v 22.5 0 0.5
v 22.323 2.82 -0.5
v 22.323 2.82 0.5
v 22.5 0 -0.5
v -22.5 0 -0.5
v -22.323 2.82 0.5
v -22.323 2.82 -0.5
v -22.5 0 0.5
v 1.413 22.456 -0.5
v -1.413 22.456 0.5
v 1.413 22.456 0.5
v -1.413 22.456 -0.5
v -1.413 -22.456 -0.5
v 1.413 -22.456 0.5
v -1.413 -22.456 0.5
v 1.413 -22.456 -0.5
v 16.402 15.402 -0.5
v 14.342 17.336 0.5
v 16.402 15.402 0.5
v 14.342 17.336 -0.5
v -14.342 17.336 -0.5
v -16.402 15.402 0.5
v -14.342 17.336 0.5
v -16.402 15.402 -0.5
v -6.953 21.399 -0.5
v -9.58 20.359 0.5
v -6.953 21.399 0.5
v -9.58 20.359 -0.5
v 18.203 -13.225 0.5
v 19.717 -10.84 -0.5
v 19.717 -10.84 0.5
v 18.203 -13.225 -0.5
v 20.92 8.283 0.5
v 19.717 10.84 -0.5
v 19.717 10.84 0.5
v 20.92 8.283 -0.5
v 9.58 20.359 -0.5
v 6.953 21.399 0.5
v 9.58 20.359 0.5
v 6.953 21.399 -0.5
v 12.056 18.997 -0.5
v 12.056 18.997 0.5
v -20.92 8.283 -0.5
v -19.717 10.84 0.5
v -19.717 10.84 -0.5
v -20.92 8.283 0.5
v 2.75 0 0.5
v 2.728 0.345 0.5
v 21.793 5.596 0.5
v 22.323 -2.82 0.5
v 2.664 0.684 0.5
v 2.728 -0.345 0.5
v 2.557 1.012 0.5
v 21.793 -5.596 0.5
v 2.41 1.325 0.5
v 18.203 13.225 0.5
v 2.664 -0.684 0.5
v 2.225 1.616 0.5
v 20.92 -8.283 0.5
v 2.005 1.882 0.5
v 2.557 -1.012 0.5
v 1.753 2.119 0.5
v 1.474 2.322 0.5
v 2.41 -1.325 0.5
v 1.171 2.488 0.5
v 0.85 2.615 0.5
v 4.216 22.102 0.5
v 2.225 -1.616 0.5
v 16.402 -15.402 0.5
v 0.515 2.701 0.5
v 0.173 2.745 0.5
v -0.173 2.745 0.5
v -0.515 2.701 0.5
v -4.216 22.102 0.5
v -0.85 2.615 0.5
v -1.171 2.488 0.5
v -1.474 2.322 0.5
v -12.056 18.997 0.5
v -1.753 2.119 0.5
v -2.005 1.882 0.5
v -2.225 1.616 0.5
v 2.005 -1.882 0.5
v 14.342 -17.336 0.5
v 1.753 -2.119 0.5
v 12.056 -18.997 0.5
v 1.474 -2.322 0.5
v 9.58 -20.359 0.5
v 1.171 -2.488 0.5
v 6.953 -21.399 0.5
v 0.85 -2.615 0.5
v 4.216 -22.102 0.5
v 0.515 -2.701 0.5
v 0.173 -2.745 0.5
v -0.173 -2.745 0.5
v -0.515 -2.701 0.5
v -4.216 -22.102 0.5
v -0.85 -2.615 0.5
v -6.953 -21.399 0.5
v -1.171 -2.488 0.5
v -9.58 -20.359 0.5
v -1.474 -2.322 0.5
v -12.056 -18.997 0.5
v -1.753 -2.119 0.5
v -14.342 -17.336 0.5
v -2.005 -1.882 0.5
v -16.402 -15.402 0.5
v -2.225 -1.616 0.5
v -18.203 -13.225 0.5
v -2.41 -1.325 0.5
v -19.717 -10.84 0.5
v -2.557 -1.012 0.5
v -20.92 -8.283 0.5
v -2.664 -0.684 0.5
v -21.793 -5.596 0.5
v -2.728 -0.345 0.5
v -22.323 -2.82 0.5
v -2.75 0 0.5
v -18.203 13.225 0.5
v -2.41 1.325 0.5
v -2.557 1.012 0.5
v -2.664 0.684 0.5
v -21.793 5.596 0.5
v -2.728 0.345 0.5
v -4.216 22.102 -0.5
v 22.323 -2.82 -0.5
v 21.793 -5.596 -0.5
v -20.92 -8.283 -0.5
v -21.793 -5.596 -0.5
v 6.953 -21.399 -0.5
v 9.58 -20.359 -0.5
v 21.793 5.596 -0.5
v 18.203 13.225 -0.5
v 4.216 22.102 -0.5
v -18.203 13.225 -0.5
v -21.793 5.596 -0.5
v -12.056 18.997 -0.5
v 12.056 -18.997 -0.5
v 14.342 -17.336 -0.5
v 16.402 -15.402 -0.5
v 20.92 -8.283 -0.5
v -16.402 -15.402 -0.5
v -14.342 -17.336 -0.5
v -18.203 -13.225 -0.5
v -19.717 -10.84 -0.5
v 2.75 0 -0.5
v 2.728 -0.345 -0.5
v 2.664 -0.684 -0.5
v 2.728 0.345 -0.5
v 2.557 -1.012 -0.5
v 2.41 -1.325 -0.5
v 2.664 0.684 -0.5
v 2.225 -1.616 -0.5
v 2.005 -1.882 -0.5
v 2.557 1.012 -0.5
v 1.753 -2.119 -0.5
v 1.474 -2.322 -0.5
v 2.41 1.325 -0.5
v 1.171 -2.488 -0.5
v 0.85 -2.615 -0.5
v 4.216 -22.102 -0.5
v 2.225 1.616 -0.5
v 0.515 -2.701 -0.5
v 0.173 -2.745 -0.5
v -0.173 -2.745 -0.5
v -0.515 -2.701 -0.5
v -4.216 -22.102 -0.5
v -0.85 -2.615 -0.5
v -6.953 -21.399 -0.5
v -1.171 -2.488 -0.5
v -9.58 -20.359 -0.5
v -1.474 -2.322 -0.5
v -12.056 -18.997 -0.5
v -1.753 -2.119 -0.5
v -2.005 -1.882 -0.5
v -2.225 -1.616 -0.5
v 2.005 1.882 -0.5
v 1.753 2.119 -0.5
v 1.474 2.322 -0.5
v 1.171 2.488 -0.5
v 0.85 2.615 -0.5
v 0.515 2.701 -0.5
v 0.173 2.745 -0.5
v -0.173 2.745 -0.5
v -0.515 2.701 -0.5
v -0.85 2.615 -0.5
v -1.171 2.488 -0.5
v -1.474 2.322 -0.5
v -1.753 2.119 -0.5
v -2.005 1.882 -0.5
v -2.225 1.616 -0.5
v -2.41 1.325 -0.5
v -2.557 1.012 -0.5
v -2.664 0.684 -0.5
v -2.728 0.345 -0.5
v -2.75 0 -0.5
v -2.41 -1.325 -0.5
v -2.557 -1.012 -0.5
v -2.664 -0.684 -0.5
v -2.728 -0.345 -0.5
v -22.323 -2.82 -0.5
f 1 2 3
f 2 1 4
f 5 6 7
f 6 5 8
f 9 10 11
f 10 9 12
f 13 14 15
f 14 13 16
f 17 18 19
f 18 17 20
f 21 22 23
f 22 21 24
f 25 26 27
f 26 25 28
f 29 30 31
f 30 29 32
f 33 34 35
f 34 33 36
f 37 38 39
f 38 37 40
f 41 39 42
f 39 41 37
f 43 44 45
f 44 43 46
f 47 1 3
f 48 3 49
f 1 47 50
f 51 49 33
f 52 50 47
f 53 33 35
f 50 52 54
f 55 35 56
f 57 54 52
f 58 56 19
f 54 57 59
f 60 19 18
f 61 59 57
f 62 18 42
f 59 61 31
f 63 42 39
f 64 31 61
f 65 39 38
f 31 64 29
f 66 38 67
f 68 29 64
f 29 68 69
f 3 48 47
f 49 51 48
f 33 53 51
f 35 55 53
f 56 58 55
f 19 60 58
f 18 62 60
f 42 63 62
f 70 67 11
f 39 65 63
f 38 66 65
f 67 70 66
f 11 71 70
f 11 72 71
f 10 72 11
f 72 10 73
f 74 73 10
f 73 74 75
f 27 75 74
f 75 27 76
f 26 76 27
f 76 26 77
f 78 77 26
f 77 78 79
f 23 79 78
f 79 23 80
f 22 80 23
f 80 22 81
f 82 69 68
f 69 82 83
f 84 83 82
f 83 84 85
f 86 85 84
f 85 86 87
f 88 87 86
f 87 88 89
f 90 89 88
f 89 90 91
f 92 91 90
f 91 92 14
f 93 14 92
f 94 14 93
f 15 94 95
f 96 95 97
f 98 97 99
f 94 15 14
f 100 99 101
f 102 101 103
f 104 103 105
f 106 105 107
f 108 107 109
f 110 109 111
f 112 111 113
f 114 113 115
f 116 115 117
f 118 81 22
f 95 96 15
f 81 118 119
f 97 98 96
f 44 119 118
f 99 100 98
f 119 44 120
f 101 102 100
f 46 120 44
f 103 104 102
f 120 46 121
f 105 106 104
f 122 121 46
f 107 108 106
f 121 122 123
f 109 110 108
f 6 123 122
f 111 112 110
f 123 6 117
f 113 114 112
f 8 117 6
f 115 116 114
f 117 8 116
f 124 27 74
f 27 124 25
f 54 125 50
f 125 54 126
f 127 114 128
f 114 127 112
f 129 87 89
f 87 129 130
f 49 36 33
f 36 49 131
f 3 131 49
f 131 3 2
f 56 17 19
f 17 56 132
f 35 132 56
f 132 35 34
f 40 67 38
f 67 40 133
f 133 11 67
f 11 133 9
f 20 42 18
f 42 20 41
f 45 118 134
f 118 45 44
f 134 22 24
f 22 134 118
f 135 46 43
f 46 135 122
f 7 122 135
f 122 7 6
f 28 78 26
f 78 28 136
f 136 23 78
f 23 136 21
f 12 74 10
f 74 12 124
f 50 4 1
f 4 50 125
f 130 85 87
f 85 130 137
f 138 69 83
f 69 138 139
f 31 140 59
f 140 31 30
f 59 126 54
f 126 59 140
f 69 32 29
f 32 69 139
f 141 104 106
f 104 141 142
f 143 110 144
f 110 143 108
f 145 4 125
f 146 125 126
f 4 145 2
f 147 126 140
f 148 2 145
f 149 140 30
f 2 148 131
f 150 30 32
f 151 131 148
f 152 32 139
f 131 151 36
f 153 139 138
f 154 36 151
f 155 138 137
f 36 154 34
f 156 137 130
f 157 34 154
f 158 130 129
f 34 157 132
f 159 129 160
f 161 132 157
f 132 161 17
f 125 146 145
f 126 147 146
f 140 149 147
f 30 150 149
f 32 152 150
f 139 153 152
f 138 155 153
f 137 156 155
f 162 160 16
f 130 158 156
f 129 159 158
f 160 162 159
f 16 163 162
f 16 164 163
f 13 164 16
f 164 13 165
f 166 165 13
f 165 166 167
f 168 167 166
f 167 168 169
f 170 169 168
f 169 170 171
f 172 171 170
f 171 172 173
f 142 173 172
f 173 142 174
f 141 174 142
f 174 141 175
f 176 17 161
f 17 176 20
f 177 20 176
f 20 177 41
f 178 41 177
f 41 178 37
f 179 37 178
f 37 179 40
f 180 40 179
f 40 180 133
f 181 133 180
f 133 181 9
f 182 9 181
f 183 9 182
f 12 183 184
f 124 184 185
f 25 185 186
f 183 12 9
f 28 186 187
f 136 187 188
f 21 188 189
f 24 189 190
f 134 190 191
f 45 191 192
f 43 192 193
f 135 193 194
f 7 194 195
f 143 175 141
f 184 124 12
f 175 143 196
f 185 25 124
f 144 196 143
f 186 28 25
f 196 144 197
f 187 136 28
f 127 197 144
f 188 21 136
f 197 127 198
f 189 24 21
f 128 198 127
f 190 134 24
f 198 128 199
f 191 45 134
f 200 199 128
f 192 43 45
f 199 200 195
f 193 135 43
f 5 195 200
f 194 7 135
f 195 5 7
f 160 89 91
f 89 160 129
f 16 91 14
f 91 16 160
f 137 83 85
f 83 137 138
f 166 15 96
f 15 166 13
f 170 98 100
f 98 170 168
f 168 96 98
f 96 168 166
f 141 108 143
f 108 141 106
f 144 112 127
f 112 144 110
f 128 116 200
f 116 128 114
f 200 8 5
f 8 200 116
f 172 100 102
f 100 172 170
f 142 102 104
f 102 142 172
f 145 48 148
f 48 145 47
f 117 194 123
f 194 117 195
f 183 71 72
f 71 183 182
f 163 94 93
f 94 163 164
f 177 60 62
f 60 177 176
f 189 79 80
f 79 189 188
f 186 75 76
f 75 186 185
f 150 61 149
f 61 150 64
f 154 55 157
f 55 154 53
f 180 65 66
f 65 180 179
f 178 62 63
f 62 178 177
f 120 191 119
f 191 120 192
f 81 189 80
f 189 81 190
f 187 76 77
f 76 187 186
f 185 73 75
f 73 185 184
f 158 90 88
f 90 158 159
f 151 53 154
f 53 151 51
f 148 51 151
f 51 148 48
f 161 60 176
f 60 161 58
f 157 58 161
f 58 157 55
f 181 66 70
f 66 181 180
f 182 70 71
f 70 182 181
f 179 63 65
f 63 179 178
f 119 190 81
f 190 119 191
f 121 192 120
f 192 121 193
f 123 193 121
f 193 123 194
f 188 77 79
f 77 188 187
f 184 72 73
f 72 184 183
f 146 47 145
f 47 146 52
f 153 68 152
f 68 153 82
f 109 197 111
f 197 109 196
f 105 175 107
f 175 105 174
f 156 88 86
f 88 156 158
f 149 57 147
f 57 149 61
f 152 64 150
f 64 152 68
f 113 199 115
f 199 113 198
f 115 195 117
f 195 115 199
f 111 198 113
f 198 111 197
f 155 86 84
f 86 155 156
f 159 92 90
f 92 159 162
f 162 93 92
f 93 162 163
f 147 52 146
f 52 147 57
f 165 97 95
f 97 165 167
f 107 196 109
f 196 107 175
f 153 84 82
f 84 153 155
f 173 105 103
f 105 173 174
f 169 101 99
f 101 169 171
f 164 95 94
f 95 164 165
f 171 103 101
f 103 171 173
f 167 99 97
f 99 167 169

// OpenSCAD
$fn = 50;


difference() {
	union() {
		translate(v = [0, 0, -0.5000000000]) {
			cylinder(h = 1, r = 22.5000000000);
		}
	}
	union() {
		translate(v = [0, 0, -100.0000000000]) {
			cylinder(h = 200, r = 2.7500000000);
		}
	}
}
